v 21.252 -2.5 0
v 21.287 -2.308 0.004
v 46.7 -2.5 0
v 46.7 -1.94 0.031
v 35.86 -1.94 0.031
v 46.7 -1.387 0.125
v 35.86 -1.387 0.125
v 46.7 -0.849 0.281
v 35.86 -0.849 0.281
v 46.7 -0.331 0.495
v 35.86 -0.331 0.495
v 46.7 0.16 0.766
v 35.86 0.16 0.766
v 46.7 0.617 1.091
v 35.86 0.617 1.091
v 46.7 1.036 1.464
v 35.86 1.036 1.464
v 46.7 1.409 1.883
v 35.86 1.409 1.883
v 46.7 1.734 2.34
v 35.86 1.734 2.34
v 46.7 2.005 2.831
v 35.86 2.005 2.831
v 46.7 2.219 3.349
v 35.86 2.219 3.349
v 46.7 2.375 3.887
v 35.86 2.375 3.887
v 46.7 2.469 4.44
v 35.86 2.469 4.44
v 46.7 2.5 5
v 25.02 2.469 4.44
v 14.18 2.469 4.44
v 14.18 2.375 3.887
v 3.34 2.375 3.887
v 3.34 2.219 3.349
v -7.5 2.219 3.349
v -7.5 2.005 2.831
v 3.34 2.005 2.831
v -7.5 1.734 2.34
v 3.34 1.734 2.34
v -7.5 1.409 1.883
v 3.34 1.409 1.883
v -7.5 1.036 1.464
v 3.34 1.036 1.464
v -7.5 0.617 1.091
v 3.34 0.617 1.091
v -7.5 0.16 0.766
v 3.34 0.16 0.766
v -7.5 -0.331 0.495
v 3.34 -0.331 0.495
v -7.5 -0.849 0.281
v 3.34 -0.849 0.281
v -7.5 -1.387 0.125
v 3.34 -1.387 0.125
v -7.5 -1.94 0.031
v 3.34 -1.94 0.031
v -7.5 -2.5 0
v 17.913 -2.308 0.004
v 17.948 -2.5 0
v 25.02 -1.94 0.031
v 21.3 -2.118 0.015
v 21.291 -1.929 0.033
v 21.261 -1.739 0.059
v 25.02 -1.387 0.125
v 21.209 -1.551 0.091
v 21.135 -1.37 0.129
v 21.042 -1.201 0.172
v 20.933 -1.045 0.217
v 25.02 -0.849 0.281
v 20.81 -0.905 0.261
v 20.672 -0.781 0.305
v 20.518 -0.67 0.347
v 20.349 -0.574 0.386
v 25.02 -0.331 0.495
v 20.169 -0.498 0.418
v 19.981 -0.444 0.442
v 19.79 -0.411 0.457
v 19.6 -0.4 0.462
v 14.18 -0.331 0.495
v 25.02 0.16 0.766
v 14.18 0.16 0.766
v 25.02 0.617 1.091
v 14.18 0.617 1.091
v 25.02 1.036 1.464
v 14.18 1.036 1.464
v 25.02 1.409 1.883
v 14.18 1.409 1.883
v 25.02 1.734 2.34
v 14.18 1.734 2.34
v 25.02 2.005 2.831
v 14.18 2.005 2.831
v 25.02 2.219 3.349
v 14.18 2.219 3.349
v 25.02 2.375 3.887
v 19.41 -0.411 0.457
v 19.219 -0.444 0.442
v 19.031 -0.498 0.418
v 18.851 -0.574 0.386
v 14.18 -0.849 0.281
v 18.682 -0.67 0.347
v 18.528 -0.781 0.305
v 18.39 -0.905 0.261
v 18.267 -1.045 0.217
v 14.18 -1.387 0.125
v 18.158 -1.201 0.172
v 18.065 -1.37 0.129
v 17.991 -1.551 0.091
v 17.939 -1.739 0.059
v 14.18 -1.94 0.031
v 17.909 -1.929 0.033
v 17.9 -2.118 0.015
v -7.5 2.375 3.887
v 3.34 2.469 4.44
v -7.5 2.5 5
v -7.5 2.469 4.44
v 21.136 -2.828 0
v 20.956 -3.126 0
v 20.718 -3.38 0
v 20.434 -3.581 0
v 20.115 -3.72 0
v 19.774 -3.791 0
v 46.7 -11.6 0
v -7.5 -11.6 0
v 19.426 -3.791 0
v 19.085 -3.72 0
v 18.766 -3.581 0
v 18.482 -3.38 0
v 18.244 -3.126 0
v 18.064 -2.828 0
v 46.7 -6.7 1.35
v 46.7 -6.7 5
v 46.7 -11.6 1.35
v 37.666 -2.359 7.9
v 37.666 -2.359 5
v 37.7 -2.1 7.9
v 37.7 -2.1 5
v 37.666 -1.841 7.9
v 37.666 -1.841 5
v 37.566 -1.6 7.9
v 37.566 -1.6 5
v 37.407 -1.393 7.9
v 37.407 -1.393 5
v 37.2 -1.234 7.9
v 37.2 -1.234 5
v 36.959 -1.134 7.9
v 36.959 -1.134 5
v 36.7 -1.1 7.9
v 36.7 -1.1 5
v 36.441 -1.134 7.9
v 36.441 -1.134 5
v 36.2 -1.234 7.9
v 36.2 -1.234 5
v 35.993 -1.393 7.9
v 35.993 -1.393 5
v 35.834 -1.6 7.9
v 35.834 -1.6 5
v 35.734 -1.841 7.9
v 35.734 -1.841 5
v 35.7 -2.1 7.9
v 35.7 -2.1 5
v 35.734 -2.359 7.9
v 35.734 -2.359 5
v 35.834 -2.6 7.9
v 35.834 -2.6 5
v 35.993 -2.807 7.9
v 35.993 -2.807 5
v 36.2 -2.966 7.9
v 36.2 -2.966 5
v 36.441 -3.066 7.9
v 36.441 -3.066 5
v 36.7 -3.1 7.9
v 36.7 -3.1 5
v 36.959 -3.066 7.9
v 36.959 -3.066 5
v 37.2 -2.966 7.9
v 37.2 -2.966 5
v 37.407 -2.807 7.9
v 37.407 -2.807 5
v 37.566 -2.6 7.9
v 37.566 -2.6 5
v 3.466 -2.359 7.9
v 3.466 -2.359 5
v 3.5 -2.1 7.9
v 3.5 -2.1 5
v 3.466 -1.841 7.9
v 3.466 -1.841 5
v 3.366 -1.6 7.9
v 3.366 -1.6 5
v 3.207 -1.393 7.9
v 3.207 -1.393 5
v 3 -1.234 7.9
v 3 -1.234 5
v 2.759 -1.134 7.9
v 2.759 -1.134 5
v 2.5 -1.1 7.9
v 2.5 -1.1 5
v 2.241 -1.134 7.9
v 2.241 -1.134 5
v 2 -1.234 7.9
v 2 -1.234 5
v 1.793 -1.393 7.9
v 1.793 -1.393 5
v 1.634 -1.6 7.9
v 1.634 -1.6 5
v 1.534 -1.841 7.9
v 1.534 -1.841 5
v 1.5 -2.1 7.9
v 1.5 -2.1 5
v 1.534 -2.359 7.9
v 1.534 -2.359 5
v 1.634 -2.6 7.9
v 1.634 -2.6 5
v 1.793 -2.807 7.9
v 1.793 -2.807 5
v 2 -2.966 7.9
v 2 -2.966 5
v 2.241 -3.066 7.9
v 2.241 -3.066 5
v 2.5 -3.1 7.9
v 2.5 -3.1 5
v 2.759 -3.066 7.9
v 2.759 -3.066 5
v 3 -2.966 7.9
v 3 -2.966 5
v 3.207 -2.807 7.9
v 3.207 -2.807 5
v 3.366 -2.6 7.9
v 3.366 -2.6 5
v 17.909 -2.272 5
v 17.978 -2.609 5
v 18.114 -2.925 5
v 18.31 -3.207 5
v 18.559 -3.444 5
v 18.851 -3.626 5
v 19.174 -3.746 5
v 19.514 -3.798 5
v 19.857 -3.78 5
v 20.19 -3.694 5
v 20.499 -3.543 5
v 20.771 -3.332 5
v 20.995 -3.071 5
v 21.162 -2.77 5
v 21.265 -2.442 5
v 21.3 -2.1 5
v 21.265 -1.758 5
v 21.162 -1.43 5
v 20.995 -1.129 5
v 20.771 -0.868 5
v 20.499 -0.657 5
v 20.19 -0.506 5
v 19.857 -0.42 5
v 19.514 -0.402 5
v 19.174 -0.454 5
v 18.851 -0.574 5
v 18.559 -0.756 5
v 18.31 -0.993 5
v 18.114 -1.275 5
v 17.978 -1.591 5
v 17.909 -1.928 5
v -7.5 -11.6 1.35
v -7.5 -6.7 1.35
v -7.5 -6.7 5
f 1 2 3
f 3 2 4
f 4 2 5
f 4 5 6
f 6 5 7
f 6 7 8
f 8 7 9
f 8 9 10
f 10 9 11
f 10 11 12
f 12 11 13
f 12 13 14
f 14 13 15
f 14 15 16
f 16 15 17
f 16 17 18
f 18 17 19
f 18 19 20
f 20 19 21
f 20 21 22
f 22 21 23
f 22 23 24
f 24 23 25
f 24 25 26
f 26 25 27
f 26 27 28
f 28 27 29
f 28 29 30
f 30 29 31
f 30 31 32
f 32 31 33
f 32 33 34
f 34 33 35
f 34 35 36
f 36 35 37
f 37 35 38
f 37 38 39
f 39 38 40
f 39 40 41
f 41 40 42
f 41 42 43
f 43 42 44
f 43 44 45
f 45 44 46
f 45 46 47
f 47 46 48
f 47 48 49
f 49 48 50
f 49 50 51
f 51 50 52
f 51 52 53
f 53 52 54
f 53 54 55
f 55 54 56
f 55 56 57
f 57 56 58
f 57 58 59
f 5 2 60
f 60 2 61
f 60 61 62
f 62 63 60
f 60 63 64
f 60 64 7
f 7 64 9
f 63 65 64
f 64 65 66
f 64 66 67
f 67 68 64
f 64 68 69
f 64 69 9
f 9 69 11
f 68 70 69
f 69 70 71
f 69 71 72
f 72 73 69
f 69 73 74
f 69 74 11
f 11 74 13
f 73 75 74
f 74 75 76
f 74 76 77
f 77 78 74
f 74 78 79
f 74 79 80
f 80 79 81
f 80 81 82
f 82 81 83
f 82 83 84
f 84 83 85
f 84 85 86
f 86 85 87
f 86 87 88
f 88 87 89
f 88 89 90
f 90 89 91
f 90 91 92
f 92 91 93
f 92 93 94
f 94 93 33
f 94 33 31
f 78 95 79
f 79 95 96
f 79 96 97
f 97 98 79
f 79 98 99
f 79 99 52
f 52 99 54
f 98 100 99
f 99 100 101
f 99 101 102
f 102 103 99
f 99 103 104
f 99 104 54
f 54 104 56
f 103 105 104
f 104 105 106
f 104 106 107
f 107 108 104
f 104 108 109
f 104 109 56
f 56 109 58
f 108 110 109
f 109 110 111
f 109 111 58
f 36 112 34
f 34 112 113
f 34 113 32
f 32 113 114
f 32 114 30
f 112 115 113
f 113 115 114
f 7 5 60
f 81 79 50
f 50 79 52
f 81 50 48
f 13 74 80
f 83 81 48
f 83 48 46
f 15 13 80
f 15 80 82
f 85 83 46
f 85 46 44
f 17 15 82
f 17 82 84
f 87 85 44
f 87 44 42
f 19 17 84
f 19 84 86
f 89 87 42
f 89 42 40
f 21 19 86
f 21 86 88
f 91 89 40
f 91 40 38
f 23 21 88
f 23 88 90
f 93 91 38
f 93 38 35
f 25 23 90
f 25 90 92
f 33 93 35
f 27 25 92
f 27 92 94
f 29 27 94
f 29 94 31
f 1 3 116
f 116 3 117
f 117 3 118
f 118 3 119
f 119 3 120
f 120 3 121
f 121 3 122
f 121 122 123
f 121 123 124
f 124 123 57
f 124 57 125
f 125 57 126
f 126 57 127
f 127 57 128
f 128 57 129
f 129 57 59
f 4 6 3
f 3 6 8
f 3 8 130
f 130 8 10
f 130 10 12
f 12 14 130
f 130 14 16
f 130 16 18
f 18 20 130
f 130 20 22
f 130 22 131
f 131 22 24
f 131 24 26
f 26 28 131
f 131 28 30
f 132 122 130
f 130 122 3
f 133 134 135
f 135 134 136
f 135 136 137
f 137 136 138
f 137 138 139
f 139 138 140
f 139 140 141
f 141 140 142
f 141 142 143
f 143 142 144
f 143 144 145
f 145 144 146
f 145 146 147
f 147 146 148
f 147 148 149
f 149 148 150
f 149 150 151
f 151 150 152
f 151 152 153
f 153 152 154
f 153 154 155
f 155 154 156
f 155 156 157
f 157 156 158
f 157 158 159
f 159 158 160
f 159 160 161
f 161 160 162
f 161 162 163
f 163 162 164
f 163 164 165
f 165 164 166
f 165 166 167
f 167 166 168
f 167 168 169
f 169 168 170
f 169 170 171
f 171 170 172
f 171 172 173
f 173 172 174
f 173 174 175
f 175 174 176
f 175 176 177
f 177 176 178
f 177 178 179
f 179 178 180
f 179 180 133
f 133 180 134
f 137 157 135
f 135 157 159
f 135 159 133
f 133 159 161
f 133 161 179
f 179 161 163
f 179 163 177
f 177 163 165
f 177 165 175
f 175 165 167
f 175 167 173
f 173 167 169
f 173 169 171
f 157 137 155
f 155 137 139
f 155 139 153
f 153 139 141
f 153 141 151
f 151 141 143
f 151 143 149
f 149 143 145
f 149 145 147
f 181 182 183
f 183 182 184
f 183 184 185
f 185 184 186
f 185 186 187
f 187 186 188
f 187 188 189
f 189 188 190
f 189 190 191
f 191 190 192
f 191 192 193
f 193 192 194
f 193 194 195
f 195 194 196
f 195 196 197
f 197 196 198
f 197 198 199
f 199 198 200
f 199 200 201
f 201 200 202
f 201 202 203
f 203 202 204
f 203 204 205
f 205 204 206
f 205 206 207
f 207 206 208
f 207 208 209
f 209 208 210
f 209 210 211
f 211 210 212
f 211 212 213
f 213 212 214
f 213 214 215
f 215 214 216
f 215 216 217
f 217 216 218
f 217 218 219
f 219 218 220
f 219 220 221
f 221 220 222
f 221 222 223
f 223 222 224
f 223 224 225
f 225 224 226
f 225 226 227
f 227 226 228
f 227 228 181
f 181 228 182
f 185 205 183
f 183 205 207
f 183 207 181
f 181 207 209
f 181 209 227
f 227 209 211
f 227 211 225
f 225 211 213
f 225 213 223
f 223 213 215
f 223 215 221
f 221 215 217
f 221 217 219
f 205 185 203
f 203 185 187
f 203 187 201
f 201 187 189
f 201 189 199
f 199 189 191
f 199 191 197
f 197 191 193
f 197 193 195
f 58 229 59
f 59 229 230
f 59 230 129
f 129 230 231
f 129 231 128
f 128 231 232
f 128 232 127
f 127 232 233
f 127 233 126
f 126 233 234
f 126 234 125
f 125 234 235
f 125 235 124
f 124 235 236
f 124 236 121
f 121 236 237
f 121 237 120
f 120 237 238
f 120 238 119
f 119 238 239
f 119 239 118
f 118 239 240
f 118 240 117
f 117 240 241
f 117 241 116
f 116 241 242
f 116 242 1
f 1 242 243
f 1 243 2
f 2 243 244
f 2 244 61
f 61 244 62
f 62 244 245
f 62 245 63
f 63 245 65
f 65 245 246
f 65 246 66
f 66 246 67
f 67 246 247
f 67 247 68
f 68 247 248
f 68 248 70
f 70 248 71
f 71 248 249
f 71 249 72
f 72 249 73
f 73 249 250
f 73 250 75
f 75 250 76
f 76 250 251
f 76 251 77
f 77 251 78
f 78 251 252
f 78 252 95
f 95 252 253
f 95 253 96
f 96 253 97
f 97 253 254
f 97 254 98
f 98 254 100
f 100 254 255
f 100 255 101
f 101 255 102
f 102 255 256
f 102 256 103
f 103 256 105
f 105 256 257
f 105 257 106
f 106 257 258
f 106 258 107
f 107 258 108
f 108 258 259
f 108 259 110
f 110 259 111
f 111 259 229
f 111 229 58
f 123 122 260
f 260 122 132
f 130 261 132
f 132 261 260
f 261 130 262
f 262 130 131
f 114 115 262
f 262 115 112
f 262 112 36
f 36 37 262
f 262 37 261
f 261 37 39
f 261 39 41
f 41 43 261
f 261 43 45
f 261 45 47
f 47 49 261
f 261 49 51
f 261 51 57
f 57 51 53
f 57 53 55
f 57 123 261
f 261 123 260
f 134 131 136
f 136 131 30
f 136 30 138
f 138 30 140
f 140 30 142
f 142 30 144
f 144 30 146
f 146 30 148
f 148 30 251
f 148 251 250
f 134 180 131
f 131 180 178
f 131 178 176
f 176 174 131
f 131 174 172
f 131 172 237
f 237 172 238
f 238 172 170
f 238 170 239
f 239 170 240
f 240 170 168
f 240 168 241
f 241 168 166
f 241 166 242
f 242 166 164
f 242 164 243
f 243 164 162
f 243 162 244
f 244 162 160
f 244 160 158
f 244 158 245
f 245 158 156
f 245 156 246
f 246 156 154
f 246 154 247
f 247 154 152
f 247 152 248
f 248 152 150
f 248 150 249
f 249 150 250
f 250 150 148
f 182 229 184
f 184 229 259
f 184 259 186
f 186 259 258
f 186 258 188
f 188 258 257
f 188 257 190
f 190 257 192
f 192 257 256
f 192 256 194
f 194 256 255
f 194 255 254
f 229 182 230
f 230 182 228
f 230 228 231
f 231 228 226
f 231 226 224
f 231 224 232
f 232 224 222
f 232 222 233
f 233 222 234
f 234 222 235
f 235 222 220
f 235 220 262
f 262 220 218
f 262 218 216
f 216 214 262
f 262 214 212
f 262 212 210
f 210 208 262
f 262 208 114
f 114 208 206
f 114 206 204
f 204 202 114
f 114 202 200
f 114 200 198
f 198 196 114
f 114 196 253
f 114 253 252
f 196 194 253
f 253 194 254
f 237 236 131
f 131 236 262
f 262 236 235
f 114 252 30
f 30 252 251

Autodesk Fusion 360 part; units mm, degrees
sketch "Sketch1" plane through (0, 0, 0) normal (0, 0, 1) x (1, 0, 0)
  line L0 (-7.5, 2.5) -> (46.7, 2.5)
  line L1 (46.7, 2.5) -> (46.7, -11.6)
  line L2 (46.7, -11.6) -> (-7.5, -11.6)
  line L3 (-7.5, -11.6) -> (-7.5, 2.5)
  line L4 (46.7, -11.6) -> (-7.5, -11.6)
  line L5 (-7.5, -11.6) -> (-7.5, -6.7)
  line L6 (-7.5, -6.7) -> (46.7, -6.7)
  line L7 (46.7, -6.7) -> (46.7, -11.6)
  dimension "d1" = 54.2
  dimension "d2" = 14.1
  dimension "d3" = 4.9
extrude "Extrude1" add sketch "Sketch1" along normal blind 5 contours L0 L1 L3 L6
extrude "Extrude2" add sketch "Sketch1" along normal blind 1.35 contours L1 L2 L3 L4 L5 L6 L7
sketch "Sketch2" plane through (0, 0, 5) normal (0, 0, 1) x (-1, 0, 0)
  line L0 (7.5, -2.5) -> (7.5, 6.7)
  line L1 (7.5, 6.7) -> (-46.7, 6.7)
  line L2 (-46.7, 6.7) -> (-46.7, -2.5)
  line L3 (-46.7, -2.5) -> (7.5, -2.5)
  line L4 (-19.6, -2.5) -> (-46.7, -2.5)
  line L5 (-46.7, -2.5) -> (-46.7, 6.7)
  line L6 (-46.7, 6.7) -> (-19.6, 6.7)
  line L7 (-46.7, 2.1) -> (-46.7, 6.7)
  line L8 (-46.7, 6.7) -> (7.5, 6.7)
  line L9 (7.5, 6.7) -> (7.5, 2.1)
  circle A0 centre (-19.6, 2.1) radius 1.7
  line L10 (-36.7, 6.7) -> (-46.7, 6.7)
  line L11 (-46.7, 6.7) -> (-46.7, 2.1)
  line L12 (-2.5, 6.7) -> (7.5, 6.7)
  line L13 (7.5, 6.7) -> (7.5, 2.1)
  circle A1 centre (-2.5, 2.1) radius 1
  circle A2 centre (-36.7, 2.1) radius 1
  dimension "d8" = 3.4
  dimension "d9" = 10
  dimension "d10" = 10
  dimension "d11" = 2
  dimension "d12" = 2
extrude "Extrude3" cut sketch "Sketch2" against normal blind 18 contours A0
extrude "Extrude4" add sketch "Sketch2" along normal blind 2.9 contours A1 | A2
sketch "Sketch3" plane through (-7.5, 0, 0) normal (-1, 0, 0) x (0, -1, 0)
  line L0 (-2.5, 0) -> (11.6, 0)
  line L1 (11.6, 0) -> (11.6, 1.35)
  line L2 (11.6, 1.35) -> (6.7, 1.35)
  line L3 (6.7, 1.35) -> (6.7, 5)
  line L4 (6.7, 5) -> (-2.5, 5)
  line L5 (-2.5, 5) -> (-2.5, 0)
  line L6 (-2.5, 5) -> (2.5, 5)
  line L7 (2.5, 5) -> (2.5, 0)
  line L8 (2.5, 0) -> (-2.5, 0)
  line L9 (-2.5, 0) -> (-2.5, 5)
  circle A0 centre (2.5, 5) radius 5
  dimension "d17" = 5
extrude "Extrude5" cut sketch "Sketch3" against normal blind 63 contours L0 L5 L8 L9 A0
